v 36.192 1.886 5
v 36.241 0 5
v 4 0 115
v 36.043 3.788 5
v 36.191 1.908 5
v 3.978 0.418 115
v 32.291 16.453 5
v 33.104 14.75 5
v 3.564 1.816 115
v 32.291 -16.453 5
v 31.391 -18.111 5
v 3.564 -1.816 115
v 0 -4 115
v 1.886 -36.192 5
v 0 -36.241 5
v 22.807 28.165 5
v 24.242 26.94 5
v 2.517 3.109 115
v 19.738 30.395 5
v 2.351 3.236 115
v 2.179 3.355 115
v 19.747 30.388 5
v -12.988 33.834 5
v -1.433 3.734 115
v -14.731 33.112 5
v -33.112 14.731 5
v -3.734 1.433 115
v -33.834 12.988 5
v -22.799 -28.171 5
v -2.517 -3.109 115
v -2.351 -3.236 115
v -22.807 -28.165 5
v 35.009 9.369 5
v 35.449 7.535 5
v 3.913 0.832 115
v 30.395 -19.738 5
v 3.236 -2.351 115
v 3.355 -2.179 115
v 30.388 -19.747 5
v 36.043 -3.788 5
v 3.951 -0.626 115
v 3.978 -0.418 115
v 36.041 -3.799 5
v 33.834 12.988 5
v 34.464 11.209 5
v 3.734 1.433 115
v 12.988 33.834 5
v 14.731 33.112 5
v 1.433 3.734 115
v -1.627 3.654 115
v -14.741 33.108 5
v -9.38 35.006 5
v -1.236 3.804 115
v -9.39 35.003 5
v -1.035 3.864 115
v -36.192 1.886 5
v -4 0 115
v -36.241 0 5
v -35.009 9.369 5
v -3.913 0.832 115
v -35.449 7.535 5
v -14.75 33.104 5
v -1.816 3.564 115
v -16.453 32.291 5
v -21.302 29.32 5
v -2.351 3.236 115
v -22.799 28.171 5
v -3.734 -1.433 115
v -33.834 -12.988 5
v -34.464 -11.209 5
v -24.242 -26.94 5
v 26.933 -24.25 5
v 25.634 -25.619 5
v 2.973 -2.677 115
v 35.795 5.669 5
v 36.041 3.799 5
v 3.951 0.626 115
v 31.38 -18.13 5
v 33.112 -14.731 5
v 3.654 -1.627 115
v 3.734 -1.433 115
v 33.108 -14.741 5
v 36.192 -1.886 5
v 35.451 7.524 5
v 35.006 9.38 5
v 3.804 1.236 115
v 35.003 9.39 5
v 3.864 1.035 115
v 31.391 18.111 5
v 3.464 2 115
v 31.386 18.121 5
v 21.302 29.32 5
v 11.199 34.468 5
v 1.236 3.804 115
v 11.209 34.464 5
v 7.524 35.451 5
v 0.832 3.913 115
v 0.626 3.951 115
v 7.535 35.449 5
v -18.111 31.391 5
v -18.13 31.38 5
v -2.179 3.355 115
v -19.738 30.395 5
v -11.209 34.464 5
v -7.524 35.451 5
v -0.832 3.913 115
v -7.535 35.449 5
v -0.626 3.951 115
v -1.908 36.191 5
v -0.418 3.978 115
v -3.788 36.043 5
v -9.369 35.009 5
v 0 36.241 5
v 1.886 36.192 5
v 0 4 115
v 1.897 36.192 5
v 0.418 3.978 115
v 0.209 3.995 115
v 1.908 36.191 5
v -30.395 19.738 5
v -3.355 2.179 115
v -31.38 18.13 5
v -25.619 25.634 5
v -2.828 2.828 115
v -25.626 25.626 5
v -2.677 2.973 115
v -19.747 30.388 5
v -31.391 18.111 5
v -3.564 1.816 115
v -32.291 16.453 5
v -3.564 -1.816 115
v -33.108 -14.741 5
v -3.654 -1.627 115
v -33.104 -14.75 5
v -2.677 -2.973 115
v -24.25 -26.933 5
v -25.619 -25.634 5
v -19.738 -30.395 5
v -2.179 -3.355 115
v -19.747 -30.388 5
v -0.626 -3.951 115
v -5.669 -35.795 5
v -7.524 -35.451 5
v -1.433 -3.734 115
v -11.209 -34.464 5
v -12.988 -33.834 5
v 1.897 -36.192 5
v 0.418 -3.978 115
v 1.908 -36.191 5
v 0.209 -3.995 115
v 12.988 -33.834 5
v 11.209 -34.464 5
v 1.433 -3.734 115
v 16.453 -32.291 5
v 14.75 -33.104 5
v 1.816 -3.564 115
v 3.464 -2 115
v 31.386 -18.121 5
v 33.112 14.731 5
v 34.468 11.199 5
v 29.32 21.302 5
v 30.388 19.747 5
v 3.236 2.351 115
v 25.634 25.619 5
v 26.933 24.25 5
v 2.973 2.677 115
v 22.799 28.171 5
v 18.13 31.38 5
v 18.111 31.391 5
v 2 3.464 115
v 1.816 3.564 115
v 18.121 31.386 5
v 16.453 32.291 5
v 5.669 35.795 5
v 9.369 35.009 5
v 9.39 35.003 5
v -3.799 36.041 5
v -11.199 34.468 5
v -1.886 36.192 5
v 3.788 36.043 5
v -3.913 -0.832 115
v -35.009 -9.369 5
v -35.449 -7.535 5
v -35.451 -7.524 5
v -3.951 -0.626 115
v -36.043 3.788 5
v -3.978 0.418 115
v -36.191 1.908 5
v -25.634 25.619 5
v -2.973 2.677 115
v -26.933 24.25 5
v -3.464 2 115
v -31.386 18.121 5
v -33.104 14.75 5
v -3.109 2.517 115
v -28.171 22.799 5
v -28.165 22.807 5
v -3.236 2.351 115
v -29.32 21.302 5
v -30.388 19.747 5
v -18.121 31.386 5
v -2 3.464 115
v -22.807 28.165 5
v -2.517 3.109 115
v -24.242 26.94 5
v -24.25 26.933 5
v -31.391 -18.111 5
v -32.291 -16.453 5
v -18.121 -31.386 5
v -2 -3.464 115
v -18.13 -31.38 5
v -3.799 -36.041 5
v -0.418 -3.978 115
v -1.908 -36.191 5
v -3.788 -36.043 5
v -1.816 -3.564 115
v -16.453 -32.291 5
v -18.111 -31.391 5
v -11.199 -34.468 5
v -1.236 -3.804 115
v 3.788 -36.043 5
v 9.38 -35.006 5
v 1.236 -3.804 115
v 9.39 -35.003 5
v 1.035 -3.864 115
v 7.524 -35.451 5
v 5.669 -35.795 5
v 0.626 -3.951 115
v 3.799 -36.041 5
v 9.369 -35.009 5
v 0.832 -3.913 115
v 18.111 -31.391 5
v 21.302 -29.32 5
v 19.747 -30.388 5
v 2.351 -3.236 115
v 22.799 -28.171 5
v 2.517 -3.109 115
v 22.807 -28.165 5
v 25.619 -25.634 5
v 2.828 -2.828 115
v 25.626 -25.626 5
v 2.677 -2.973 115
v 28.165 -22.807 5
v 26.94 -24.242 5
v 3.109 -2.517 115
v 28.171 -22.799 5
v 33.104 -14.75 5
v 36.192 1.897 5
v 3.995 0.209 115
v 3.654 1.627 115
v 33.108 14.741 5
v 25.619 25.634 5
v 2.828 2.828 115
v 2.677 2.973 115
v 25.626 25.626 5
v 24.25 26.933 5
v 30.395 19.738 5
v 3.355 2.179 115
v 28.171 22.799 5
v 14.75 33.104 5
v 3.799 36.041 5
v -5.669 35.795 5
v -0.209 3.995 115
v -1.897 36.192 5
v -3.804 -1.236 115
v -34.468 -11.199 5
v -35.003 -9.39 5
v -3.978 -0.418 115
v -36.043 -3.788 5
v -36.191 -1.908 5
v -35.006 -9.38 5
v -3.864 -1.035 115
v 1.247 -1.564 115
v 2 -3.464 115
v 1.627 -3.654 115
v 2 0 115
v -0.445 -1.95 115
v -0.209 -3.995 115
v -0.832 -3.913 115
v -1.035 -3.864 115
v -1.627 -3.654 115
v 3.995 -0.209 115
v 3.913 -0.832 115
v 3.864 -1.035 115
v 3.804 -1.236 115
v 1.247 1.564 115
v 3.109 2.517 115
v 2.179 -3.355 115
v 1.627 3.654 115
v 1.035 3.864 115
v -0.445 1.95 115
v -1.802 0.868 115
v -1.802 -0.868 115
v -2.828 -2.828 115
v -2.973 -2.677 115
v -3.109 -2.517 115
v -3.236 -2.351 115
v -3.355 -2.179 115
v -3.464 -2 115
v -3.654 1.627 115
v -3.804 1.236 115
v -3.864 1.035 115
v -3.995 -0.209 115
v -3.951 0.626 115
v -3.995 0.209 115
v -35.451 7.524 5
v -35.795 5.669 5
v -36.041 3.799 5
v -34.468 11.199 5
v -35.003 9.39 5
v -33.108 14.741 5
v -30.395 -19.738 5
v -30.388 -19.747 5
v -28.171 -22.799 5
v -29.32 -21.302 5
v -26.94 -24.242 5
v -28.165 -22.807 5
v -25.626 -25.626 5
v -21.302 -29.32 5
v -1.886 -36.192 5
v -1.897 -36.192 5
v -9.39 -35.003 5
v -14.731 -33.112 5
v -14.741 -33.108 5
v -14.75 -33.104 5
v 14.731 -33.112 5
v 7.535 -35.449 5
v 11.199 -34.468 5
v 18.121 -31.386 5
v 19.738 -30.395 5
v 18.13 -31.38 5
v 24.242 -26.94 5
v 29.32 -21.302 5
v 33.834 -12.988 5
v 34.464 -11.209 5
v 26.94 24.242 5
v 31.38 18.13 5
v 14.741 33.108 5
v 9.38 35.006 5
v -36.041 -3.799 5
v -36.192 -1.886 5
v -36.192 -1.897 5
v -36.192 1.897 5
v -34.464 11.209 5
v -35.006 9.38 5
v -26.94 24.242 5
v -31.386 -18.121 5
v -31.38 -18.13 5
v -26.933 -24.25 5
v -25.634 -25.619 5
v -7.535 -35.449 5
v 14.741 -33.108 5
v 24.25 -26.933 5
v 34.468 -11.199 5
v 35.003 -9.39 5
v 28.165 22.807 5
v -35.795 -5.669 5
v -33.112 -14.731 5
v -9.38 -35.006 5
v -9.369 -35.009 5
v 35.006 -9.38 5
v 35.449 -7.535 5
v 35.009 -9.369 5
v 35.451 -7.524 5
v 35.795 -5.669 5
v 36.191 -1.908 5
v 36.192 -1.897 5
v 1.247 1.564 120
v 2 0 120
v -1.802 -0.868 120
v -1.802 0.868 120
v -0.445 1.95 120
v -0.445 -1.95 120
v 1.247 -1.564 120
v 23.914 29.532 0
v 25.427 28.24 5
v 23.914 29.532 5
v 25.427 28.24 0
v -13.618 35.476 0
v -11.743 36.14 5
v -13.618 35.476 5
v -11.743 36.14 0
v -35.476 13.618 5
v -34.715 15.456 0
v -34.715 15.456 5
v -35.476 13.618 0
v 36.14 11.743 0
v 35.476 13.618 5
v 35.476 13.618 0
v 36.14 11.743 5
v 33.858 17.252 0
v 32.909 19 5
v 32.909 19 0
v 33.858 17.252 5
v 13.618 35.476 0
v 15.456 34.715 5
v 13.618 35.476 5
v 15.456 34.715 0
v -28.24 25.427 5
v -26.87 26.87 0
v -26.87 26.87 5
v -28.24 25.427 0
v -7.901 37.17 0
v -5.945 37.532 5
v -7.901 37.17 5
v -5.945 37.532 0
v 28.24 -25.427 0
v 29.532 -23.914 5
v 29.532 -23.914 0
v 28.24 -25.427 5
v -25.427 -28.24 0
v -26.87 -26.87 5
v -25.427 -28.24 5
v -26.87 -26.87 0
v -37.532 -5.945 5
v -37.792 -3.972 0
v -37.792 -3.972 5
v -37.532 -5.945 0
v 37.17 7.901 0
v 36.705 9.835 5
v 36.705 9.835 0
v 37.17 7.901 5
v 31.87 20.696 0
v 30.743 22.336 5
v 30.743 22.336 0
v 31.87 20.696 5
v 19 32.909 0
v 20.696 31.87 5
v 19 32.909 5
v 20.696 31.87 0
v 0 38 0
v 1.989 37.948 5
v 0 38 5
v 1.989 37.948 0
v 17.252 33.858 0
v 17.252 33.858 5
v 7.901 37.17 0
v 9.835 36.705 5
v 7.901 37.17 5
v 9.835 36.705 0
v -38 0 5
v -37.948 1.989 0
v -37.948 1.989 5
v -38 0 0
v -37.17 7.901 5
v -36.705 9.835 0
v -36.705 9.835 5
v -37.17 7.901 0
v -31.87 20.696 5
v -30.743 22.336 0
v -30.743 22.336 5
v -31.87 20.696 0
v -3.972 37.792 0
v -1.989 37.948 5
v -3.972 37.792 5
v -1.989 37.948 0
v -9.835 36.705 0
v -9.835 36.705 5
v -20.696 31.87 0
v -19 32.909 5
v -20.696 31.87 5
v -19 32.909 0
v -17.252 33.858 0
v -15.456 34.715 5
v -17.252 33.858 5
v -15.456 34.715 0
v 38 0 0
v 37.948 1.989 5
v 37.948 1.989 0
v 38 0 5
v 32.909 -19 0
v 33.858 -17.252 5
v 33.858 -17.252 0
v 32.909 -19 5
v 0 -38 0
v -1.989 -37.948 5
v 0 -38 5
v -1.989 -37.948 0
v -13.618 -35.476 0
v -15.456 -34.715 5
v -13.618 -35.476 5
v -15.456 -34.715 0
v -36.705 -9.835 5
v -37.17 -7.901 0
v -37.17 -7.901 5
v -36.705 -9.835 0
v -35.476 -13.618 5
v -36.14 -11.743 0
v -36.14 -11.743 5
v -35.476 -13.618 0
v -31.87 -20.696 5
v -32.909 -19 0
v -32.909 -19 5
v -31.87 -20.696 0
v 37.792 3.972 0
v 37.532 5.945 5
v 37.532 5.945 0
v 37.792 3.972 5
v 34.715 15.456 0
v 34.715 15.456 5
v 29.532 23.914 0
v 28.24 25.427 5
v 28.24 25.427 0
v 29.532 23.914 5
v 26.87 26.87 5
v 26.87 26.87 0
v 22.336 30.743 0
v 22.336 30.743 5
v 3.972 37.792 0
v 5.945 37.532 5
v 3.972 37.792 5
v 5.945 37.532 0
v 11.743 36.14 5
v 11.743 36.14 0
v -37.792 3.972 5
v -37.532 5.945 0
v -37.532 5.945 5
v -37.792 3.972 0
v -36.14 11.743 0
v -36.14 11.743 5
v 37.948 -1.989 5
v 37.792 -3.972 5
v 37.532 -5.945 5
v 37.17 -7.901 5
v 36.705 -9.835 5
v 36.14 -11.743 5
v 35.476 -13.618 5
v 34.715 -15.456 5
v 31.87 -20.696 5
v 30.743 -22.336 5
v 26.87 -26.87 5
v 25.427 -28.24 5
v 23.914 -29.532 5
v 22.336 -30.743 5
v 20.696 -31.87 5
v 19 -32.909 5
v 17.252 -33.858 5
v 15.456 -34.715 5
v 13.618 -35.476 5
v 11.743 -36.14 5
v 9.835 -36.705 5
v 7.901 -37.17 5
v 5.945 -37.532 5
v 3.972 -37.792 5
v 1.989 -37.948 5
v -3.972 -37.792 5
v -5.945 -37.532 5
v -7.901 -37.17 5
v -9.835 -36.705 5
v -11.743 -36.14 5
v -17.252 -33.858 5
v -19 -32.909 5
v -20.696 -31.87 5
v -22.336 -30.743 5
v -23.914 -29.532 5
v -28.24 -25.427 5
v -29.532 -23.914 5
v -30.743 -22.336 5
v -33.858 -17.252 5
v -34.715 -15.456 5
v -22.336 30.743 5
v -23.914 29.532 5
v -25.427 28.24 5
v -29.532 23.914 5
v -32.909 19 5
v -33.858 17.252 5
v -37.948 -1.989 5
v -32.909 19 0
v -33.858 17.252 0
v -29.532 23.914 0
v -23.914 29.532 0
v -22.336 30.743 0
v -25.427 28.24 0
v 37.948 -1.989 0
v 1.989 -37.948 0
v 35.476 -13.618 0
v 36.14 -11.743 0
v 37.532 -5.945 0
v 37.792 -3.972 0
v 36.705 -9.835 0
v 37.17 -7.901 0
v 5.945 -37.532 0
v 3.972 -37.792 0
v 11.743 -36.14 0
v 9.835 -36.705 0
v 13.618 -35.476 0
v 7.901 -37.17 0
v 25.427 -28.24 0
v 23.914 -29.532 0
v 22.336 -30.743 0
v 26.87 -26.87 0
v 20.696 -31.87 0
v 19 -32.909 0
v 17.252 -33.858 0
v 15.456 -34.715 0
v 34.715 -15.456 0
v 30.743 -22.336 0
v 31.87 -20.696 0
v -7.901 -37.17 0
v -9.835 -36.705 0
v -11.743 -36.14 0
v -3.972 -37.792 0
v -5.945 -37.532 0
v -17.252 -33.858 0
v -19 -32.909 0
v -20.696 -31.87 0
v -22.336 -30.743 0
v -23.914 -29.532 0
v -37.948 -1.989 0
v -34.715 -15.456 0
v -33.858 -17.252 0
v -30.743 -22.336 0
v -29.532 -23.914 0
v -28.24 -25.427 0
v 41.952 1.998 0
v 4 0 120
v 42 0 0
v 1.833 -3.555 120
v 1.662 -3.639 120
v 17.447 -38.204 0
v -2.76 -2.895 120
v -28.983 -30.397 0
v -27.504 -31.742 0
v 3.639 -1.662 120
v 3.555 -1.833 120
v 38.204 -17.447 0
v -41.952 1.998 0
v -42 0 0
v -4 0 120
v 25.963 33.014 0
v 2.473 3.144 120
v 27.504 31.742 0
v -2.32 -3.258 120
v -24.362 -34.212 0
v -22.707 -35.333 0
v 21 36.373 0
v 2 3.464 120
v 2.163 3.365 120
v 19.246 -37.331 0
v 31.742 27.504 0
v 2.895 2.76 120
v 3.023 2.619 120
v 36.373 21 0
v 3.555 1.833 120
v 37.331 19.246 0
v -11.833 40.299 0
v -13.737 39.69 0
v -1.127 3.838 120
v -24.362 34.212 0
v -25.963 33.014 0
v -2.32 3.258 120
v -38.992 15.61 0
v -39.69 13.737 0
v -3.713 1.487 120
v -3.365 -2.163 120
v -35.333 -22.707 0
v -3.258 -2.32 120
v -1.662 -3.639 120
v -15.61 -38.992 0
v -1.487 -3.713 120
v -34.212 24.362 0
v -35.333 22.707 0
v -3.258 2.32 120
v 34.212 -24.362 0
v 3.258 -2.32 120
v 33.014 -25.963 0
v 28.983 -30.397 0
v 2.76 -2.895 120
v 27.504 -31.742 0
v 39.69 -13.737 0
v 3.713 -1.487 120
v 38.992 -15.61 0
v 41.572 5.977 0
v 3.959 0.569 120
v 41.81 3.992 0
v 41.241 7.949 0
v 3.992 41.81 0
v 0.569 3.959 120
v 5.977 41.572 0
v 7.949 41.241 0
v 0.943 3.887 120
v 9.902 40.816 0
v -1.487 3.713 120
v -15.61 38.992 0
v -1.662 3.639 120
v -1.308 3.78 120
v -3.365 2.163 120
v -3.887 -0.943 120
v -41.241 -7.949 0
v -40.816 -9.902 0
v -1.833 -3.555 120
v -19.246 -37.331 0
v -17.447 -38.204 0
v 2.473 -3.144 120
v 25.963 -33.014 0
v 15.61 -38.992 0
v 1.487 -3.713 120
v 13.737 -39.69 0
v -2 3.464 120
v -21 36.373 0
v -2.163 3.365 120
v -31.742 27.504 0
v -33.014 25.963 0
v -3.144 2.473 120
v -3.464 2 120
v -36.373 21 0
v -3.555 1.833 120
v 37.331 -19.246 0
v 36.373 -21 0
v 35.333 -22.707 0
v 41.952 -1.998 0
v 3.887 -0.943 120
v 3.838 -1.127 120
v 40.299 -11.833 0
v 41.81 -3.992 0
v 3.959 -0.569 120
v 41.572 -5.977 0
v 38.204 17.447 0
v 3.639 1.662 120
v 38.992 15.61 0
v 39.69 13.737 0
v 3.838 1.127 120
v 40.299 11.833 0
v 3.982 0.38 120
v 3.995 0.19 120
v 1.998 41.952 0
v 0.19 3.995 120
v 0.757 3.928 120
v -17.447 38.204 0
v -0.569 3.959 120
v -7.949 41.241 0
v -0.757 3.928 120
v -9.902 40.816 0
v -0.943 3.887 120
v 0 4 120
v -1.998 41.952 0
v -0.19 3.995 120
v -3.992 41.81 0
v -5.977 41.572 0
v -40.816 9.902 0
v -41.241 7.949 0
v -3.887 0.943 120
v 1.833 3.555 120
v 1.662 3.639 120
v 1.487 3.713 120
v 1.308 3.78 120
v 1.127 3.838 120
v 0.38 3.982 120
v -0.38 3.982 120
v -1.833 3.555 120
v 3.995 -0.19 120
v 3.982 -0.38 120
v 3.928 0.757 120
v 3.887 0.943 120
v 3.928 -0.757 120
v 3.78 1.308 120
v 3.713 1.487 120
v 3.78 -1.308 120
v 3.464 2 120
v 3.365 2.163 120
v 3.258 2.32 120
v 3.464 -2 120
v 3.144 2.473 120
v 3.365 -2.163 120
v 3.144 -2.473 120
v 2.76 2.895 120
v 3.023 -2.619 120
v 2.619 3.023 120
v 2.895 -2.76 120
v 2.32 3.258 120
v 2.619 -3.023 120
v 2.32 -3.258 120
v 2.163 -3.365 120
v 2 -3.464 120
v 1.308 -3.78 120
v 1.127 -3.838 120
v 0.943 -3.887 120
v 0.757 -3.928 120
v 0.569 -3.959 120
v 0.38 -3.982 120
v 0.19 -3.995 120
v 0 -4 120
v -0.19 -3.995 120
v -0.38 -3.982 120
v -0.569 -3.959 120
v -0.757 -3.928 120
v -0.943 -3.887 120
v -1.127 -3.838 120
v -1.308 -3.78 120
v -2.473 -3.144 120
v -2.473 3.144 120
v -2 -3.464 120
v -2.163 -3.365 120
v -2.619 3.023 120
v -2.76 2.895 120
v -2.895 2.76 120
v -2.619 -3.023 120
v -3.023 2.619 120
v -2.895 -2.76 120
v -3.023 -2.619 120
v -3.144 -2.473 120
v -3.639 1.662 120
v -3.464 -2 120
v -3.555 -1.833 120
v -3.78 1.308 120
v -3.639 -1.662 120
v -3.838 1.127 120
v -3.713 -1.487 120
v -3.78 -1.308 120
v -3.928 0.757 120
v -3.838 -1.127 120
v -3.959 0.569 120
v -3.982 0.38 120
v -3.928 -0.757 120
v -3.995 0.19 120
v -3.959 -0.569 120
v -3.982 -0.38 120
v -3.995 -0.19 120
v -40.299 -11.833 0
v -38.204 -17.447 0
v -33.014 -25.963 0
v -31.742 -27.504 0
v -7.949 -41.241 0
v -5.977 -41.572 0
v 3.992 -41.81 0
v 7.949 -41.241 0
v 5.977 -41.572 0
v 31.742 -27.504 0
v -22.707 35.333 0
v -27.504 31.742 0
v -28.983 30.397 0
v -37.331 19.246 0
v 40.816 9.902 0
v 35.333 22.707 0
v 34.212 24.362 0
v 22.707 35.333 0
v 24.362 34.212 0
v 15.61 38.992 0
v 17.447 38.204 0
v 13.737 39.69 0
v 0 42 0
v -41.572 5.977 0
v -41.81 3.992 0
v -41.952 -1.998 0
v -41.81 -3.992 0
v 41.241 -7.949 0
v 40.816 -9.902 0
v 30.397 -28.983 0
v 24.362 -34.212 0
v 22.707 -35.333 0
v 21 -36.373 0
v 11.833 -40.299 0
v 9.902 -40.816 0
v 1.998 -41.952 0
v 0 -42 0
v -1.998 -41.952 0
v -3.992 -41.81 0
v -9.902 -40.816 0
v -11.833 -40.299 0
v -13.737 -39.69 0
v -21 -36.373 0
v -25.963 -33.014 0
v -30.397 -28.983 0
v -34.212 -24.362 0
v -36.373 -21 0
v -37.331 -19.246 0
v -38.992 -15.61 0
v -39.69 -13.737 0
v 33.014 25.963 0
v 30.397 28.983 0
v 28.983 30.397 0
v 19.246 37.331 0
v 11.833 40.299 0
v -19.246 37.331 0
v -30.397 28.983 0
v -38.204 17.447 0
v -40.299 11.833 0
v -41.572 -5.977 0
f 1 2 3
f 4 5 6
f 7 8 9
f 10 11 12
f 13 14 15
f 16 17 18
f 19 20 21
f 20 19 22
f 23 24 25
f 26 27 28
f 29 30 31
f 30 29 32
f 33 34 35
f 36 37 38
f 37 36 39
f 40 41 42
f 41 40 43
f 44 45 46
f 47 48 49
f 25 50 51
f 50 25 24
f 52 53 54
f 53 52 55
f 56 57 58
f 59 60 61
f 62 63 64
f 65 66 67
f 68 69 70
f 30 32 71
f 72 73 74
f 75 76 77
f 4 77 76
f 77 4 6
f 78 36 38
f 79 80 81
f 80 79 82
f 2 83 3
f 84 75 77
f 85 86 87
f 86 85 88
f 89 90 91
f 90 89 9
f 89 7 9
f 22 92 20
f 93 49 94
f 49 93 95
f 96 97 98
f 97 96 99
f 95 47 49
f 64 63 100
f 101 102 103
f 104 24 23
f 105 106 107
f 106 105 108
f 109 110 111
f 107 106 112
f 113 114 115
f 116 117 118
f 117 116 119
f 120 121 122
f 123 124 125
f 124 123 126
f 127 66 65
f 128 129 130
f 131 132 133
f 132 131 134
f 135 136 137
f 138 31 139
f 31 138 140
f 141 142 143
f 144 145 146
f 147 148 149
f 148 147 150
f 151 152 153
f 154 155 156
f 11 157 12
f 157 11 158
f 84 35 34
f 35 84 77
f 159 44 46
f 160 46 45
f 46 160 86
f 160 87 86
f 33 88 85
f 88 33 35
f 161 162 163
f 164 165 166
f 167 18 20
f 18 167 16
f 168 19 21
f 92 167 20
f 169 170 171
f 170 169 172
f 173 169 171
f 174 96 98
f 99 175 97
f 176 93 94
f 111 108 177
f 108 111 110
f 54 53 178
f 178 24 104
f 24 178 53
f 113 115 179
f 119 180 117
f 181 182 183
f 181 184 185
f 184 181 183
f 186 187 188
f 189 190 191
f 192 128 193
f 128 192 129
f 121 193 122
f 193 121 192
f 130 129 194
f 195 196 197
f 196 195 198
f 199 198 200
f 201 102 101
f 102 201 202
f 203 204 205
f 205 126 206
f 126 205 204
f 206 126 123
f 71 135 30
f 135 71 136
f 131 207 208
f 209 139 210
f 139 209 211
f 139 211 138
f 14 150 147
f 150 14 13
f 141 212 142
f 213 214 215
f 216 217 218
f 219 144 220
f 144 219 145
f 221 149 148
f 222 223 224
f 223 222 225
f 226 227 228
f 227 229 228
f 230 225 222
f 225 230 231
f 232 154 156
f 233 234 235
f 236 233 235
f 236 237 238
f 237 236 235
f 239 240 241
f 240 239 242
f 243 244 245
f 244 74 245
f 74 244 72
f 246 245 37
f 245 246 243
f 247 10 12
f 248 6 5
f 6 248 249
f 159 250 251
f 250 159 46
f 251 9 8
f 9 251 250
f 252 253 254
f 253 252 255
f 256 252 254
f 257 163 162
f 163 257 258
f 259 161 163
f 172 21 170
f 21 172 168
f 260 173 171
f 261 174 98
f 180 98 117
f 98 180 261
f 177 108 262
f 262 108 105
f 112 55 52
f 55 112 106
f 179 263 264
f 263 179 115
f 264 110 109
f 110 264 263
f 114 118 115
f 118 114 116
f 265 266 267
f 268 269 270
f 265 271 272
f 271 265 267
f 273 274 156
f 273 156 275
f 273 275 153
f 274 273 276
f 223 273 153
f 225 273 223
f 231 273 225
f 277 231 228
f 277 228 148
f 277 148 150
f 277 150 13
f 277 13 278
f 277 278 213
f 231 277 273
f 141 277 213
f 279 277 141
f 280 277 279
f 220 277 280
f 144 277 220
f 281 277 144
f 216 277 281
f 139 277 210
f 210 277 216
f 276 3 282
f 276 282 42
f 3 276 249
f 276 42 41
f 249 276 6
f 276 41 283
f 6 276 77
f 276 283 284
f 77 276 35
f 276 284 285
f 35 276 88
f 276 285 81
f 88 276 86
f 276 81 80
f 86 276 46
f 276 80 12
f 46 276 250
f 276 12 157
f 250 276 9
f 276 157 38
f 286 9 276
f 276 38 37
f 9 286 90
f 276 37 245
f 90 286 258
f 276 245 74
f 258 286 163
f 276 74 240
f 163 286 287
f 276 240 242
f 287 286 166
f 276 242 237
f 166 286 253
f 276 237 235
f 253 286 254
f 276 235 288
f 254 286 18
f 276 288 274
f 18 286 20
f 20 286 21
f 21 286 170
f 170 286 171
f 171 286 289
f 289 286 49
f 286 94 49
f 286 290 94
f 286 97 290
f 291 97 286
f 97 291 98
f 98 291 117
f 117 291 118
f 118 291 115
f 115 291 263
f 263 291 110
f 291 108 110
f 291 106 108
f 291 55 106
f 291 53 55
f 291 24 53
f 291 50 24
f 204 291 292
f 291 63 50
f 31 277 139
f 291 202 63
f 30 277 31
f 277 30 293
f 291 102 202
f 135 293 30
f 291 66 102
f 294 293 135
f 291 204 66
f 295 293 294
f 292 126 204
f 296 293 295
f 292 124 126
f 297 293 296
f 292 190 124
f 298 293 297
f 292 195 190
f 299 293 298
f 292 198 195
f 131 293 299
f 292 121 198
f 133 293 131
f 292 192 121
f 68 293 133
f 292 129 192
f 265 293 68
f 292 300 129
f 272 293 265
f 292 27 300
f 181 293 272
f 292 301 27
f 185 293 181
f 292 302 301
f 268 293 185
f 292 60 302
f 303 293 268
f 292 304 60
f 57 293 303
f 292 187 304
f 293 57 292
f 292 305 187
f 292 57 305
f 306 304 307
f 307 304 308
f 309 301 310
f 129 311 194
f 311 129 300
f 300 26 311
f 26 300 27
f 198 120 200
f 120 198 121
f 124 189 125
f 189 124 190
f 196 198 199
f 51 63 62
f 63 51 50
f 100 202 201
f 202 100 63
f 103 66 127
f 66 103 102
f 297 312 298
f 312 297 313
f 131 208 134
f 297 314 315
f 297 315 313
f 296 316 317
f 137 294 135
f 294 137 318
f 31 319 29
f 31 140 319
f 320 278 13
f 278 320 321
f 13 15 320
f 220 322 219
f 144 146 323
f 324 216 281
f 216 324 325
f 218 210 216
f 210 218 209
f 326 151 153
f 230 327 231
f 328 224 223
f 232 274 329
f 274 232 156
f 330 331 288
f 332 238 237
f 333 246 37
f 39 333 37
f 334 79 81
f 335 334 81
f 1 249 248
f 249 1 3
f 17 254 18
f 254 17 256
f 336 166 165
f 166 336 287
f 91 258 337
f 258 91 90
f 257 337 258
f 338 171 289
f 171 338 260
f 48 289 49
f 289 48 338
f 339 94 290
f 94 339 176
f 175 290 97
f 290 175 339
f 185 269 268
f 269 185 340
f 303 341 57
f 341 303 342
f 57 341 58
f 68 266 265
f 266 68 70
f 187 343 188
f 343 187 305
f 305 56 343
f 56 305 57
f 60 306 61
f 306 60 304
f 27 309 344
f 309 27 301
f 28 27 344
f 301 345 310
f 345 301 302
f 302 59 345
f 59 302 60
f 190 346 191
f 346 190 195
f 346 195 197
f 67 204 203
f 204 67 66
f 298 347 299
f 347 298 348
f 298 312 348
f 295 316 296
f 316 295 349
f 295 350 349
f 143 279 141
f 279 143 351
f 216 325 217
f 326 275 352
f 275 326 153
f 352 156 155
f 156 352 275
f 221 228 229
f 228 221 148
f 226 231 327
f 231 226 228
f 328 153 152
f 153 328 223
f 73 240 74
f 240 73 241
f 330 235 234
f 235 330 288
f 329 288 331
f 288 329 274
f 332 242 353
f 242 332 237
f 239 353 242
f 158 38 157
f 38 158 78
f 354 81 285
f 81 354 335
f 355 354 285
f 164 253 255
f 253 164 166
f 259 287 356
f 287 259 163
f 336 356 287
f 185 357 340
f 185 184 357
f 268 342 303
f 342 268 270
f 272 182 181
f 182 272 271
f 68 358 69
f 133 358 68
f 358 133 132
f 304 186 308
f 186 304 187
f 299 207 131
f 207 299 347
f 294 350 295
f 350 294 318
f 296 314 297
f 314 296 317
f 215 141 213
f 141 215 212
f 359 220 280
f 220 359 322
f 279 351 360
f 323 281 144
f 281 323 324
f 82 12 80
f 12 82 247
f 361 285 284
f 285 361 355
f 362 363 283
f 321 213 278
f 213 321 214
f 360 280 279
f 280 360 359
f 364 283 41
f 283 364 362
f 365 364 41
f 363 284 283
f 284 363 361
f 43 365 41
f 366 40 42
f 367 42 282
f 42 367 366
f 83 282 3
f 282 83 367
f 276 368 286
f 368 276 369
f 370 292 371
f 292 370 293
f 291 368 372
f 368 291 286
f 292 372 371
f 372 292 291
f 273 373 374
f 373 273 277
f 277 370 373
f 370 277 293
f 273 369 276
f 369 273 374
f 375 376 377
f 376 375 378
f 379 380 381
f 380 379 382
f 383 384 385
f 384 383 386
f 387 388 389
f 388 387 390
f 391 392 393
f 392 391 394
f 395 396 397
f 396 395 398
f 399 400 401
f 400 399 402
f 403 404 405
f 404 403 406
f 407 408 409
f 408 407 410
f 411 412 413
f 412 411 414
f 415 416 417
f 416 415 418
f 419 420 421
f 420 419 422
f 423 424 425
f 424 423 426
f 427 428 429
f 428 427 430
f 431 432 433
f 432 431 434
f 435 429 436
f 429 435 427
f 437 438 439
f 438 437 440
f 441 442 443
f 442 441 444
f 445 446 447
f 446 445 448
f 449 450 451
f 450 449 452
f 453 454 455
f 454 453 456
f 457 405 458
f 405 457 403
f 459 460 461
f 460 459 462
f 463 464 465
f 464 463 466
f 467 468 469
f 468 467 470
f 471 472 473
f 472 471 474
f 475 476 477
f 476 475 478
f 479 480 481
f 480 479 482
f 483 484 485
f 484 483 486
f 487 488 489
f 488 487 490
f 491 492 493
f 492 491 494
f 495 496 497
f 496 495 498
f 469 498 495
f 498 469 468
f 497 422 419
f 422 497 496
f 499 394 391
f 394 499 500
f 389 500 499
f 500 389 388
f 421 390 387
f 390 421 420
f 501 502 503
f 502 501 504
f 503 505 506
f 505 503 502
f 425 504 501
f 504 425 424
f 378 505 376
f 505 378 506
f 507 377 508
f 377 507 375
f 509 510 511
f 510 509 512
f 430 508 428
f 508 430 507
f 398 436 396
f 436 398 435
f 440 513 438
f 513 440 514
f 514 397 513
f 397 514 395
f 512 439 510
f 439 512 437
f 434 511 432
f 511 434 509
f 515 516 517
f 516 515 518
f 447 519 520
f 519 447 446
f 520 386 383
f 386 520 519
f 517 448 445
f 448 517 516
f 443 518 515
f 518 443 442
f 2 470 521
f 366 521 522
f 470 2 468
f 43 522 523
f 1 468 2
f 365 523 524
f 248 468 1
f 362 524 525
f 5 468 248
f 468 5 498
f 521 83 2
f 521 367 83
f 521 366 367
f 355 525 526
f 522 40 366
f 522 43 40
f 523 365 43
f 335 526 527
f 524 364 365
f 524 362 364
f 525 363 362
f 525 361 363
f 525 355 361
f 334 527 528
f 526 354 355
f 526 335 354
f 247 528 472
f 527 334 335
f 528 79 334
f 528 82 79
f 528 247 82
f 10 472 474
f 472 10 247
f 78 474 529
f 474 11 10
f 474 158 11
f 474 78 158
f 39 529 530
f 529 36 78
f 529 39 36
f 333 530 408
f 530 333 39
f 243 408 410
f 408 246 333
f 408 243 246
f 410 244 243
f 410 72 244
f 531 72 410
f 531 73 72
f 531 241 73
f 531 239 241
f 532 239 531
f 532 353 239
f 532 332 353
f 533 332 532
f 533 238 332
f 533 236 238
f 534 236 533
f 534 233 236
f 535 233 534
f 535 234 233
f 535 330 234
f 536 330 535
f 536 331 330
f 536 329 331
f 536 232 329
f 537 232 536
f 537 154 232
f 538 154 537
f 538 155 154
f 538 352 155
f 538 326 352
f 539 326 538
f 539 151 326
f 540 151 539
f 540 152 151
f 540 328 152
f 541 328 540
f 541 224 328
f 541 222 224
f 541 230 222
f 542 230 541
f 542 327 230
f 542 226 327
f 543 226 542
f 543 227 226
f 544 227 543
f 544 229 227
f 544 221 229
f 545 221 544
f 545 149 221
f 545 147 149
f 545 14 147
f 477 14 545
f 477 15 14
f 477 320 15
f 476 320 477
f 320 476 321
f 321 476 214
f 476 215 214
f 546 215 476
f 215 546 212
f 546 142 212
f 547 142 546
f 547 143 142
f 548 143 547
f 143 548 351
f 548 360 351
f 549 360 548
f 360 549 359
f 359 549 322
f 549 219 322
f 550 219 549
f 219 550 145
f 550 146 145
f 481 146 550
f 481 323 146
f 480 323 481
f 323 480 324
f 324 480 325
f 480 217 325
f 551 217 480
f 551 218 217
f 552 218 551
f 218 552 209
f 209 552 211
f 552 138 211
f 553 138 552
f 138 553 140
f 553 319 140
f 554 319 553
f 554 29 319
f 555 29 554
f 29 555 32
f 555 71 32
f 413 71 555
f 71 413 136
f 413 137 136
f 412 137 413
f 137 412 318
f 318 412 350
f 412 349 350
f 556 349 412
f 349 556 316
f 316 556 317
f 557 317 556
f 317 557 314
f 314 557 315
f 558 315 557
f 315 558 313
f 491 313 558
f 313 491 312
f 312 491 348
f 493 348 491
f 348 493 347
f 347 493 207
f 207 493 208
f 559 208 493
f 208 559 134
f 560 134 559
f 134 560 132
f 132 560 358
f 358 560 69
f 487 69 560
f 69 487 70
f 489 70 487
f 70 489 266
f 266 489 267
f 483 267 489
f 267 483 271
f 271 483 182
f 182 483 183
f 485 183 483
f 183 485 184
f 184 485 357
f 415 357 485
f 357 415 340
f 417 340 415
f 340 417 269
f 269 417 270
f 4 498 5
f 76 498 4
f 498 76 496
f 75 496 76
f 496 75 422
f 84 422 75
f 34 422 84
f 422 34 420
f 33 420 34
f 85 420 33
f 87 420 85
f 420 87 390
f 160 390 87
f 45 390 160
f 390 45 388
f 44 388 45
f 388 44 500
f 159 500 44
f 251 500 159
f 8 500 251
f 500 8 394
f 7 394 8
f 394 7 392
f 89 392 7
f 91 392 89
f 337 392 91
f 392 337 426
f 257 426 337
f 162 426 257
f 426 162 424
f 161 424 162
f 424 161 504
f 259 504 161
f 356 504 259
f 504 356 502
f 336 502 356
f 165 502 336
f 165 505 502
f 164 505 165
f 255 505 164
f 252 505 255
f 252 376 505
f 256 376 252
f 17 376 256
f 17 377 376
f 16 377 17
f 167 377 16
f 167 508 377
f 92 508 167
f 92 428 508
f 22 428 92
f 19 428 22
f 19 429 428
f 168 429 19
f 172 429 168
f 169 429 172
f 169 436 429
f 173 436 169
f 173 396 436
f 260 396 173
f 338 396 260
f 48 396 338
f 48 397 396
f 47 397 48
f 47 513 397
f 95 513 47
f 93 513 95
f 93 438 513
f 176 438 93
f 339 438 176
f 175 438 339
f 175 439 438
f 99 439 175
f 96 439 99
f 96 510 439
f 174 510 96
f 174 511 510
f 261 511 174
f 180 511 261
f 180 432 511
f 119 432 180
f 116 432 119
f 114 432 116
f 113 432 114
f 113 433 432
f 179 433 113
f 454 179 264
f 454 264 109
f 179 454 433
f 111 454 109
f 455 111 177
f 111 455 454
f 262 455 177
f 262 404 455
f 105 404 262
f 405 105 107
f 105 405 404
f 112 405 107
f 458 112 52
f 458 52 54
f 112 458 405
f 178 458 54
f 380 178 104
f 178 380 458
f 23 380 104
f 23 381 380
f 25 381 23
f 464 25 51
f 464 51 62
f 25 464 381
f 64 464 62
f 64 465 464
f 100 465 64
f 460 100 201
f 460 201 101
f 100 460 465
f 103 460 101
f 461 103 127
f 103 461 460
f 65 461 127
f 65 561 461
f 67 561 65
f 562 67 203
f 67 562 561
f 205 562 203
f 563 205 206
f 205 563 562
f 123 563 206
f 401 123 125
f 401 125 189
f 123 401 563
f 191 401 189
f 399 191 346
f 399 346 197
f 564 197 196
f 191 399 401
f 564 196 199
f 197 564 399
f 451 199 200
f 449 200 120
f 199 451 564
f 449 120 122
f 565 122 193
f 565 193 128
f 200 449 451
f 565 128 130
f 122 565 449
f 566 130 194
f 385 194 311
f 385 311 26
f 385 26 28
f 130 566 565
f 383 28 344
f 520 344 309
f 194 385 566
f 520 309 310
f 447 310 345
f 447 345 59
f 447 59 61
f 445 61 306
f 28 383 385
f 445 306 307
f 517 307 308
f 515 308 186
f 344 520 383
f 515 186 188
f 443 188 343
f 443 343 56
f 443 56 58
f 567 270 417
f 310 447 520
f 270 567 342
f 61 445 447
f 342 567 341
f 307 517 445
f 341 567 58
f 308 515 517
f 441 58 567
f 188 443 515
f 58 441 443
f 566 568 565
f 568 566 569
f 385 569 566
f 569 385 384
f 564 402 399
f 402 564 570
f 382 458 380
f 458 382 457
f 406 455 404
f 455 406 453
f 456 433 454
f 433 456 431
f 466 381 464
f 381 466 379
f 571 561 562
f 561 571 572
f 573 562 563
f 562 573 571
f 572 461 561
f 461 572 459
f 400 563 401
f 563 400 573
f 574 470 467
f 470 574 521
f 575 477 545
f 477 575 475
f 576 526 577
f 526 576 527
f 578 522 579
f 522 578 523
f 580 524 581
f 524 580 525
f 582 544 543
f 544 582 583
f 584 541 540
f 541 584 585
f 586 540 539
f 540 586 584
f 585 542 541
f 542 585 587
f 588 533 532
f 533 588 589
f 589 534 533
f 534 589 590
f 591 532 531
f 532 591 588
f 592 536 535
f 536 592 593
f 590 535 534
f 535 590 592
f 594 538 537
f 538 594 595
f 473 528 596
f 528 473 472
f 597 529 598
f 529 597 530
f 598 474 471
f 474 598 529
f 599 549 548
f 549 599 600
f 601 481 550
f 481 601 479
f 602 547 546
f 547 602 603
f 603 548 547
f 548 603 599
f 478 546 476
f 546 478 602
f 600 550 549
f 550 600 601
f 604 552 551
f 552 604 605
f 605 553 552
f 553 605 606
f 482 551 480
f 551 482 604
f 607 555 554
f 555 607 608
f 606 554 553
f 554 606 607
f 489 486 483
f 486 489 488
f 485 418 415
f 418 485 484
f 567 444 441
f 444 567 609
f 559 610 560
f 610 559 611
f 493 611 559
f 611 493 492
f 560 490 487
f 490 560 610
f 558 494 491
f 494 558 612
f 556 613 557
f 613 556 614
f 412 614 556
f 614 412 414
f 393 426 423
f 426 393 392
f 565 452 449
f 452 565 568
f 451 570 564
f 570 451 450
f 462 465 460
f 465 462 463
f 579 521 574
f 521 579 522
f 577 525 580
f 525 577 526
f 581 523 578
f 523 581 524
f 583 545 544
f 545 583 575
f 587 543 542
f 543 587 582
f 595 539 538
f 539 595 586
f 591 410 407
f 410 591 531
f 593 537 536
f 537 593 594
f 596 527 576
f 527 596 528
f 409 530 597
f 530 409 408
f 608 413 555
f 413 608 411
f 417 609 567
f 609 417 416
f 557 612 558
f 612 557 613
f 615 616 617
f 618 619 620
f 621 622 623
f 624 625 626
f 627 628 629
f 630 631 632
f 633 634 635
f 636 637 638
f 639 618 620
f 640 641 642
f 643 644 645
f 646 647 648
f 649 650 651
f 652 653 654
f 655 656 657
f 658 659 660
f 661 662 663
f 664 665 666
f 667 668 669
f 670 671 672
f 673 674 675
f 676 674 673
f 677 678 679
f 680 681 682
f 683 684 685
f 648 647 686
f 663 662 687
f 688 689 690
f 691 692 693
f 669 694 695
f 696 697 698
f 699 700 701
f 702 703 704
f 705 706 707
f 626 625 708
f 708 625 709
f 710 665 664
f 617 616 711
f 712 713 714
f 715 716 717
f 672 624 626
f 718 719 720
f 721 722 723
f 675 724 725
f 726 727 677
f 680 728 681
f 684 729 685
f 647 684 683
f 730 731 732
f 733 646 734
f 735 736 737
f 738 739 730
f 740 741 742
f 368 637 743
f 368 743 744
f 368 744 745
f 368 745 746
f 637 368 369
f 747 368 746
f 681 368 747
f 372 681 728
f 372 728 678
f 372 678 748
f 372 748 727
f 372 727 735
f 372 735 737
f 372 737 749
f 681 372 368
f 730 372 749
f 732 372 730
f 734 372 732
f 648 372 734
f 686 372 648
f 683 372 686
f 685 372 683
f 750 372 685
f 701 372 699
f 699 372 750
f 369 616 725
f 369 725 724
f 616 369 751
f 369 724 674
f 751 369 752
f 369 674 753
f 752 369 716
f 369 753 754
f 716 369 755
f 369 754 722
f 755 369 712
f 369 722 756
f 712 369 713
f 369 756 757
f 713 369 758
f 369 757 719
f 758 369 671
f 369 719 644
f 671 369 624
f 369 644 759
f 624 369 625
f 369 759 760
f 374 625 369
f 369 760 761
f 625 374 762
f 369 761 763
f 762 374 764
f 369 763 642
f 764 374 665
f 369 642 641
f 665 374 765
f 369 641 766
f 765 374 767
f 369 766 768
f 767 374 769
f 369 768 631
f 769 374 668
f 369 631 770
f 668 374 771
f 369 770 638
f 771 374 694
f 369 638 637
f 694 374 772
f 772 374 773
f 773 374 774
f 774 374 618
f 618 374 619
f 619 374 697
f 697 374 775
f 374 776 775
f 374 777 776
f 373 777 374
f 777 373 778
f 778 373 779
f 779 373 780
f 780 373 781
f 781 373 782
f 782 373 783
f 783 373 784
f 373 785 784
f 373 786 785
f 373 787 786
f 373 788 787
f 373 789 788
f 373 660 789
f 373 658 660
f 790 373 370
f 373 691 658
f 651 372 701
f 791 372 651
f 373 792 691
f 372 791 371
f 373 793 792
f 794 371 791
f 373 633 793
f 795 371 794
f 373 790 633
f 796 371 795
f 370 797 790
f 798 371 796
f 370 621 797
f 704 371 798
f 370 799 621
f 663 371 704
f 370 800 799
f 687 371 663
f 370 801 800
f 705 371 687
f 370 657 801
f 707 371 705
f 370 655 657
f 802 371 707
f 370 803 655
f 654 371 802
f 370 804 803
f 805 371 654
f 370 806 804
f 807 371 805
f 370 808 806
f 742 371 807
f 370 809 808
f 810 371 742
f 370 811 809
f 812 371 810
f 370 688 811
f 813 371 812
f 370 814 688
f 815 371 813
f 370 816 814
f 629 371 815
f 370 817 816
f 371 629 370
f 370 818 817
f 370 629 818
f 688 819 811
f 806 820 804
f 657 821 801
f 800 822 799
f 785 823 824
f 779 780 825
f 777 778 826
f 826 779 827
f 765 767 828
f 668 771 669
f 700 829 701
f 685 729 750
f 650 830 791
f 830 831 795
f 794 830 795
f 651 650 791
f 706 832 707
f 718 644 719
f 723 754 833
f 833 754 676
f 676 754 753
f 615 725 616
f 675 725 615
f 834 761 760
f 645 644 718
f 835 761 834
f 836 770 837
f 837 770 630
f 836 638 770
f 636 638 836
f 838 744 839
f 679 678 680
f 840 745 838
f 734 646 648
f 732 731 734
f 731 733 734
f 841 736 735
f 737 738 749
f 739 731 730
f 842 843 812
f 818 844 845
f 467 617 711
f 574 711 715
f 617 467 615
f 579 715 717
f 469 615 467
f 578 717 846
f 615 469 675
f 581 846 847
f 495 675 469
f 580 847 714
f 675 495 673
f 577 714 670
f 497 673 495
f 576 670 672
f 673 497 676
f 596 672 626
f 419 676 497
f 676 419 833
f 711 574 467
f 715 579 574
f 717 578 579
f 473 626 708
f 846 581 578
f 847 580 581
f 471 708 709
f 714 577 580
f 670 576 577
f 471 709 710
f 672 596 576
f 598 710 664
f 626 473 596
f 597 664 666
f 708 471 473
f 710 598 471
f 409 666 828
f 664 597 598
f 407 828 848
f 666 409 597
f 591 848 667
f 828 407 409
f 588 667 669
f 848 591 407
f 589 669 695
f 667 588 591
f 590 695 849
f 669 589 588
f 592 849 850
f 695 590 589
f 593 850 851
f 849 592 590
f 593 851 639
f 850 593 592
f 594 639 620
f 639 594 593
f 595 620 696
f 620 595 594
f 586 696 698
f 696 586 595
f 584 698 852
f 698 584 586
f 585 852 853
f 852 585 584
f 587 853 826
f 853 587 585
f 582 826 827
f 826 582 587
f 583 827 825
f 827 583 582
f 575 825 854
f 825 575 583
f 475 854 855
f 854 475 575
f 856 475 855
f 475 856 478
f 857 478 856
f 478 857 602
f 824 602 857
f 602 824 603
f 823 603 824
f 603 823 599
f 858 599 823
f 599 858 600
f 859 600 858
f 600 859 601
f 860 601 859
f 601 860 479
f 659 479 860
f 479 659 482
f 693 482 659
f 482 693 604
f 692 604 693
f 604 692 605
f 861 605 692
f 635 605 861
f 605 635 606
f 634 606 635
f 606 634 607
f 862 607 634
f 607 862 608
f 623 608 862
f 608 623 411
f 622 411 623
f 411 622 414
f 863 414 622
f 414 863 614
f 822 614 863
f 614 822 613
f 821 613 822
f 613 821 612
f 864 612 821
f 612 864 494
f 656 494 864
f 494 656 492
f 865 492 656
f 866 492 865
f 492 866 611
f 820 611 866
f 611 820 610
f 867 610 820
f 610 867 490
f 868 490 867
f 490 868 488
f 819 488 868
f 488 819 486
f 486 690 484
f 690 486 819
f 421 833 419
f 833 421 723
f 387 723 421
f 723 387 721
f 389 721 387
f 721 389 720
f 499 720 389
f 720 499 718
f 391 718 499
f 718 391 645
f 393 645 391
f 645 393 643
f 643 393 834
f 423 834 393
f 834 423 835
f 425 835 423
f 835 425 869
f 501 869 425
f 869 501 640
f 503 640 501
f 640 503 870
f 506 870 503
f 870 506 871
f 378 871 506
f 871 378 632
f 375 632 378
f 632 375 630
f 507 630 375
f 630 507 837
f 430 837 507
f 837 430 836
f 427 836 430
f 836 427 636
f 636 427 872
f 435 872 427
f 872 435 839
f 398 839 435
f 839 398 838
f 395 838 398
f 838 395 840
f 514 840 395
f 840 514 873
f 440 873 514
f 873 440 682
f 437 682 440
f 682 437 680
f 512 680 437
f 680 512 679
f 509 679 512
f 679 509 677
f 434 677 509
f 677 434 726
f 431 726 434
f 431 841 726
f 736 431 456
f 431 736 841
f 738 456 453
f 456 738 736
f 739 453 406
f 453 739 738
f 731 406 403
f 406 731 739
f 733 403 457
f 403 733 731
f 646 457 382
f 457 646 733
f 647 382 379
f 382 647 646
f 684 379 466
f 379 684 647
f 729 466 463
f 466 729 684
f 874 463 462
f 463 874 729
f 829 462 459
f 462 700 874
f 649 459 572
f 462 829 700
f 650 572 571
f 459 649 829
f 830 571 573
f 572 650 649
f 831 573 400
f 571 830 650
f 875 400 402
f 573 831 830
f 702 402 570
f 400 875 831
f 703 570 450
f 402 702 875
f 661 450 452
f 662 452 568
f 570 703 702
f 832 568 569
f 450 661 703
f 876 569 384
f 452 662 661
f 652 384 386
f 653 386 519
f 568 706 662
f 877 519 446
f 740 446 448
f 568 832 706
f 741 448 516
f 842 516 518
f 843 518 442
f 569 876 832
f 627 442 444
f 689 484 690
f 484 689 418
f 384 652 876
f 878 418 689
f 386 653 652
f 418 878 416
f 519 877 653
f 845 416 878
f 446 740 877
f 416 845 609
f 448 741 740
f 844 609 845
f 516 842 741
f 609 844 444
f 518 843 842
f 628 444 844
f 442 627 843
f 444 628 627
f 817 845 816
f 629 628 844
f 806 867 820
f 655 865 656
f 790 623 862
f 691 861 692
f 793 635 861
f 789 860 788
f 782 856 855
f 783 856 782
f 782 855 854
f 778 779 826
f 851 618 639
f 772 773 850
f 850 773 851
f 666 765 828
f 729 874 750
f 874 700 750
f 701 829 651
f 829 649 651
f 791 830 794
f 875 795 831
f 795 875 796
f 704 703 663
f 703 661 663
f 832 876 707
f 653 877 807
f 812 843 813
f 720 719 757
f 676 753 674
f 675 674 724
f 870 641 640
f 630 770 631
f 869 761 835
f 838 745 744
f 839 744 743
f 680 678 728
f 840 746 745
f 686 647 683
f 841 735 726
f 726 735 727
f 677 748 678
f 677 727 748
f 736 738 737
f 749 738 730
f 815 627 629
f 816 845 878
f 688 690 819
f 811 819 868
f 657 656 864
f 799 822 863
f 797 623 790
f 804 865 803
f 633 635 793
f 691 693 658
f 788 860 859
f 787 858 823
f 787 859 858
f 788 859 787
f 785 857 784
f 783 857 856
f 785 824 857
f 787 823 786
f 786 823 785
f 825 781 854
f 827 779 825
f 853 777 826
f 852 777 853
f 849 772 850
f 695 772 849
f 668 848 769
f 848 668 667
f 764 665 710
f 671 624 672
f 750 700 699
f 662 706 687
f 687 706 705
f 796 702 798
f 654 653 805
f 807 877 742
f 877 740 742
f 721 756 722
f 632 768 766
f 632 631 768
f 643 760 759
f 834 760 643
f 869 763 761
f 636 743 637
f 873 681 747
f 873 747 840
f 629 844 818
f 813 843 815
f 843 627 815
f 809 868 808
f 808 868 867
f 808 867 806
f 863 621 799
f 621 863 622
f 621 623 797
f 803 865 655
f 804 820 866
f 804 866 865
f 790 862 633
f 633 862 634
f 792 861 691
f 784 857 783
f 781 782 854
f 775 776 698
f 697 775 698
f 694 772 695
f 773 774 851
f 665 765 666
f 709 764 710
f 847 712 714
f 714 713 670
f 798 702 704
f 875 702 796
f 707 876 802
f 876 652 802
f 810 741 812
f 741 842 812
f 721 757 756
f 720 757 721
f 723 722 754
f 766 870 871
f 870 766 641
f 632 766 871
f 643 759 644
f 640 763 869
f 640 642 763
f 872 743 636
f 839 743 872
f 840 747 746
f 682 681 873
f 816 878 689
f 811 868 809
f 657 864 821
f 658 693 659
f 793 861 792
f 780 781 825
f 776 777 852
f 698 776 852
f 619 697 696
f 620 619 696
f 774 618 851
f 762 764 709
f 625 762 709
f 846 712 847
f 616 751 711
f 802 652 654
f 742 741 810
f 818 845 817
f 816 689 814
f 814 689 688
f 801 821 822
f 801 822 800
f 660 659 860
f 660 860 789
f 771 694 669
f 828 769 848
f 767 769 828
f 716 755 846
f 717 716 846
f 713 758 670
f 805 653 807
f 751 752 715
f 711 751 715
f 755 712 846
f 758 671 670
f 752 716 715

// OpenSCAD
difference() {
    cylinder($fa=0.1, h=120, r1=42, r2=4, center=false);
    translate([0,0,-1]){
    cylinder($fa=0.1, h=116, r1=38, r2=4, center=false);
    cylinder($fa=0.1, h=122, r=2, center=false);
    cylinder($fa=0.1, h=6, r=38, center=false);
    }
}
